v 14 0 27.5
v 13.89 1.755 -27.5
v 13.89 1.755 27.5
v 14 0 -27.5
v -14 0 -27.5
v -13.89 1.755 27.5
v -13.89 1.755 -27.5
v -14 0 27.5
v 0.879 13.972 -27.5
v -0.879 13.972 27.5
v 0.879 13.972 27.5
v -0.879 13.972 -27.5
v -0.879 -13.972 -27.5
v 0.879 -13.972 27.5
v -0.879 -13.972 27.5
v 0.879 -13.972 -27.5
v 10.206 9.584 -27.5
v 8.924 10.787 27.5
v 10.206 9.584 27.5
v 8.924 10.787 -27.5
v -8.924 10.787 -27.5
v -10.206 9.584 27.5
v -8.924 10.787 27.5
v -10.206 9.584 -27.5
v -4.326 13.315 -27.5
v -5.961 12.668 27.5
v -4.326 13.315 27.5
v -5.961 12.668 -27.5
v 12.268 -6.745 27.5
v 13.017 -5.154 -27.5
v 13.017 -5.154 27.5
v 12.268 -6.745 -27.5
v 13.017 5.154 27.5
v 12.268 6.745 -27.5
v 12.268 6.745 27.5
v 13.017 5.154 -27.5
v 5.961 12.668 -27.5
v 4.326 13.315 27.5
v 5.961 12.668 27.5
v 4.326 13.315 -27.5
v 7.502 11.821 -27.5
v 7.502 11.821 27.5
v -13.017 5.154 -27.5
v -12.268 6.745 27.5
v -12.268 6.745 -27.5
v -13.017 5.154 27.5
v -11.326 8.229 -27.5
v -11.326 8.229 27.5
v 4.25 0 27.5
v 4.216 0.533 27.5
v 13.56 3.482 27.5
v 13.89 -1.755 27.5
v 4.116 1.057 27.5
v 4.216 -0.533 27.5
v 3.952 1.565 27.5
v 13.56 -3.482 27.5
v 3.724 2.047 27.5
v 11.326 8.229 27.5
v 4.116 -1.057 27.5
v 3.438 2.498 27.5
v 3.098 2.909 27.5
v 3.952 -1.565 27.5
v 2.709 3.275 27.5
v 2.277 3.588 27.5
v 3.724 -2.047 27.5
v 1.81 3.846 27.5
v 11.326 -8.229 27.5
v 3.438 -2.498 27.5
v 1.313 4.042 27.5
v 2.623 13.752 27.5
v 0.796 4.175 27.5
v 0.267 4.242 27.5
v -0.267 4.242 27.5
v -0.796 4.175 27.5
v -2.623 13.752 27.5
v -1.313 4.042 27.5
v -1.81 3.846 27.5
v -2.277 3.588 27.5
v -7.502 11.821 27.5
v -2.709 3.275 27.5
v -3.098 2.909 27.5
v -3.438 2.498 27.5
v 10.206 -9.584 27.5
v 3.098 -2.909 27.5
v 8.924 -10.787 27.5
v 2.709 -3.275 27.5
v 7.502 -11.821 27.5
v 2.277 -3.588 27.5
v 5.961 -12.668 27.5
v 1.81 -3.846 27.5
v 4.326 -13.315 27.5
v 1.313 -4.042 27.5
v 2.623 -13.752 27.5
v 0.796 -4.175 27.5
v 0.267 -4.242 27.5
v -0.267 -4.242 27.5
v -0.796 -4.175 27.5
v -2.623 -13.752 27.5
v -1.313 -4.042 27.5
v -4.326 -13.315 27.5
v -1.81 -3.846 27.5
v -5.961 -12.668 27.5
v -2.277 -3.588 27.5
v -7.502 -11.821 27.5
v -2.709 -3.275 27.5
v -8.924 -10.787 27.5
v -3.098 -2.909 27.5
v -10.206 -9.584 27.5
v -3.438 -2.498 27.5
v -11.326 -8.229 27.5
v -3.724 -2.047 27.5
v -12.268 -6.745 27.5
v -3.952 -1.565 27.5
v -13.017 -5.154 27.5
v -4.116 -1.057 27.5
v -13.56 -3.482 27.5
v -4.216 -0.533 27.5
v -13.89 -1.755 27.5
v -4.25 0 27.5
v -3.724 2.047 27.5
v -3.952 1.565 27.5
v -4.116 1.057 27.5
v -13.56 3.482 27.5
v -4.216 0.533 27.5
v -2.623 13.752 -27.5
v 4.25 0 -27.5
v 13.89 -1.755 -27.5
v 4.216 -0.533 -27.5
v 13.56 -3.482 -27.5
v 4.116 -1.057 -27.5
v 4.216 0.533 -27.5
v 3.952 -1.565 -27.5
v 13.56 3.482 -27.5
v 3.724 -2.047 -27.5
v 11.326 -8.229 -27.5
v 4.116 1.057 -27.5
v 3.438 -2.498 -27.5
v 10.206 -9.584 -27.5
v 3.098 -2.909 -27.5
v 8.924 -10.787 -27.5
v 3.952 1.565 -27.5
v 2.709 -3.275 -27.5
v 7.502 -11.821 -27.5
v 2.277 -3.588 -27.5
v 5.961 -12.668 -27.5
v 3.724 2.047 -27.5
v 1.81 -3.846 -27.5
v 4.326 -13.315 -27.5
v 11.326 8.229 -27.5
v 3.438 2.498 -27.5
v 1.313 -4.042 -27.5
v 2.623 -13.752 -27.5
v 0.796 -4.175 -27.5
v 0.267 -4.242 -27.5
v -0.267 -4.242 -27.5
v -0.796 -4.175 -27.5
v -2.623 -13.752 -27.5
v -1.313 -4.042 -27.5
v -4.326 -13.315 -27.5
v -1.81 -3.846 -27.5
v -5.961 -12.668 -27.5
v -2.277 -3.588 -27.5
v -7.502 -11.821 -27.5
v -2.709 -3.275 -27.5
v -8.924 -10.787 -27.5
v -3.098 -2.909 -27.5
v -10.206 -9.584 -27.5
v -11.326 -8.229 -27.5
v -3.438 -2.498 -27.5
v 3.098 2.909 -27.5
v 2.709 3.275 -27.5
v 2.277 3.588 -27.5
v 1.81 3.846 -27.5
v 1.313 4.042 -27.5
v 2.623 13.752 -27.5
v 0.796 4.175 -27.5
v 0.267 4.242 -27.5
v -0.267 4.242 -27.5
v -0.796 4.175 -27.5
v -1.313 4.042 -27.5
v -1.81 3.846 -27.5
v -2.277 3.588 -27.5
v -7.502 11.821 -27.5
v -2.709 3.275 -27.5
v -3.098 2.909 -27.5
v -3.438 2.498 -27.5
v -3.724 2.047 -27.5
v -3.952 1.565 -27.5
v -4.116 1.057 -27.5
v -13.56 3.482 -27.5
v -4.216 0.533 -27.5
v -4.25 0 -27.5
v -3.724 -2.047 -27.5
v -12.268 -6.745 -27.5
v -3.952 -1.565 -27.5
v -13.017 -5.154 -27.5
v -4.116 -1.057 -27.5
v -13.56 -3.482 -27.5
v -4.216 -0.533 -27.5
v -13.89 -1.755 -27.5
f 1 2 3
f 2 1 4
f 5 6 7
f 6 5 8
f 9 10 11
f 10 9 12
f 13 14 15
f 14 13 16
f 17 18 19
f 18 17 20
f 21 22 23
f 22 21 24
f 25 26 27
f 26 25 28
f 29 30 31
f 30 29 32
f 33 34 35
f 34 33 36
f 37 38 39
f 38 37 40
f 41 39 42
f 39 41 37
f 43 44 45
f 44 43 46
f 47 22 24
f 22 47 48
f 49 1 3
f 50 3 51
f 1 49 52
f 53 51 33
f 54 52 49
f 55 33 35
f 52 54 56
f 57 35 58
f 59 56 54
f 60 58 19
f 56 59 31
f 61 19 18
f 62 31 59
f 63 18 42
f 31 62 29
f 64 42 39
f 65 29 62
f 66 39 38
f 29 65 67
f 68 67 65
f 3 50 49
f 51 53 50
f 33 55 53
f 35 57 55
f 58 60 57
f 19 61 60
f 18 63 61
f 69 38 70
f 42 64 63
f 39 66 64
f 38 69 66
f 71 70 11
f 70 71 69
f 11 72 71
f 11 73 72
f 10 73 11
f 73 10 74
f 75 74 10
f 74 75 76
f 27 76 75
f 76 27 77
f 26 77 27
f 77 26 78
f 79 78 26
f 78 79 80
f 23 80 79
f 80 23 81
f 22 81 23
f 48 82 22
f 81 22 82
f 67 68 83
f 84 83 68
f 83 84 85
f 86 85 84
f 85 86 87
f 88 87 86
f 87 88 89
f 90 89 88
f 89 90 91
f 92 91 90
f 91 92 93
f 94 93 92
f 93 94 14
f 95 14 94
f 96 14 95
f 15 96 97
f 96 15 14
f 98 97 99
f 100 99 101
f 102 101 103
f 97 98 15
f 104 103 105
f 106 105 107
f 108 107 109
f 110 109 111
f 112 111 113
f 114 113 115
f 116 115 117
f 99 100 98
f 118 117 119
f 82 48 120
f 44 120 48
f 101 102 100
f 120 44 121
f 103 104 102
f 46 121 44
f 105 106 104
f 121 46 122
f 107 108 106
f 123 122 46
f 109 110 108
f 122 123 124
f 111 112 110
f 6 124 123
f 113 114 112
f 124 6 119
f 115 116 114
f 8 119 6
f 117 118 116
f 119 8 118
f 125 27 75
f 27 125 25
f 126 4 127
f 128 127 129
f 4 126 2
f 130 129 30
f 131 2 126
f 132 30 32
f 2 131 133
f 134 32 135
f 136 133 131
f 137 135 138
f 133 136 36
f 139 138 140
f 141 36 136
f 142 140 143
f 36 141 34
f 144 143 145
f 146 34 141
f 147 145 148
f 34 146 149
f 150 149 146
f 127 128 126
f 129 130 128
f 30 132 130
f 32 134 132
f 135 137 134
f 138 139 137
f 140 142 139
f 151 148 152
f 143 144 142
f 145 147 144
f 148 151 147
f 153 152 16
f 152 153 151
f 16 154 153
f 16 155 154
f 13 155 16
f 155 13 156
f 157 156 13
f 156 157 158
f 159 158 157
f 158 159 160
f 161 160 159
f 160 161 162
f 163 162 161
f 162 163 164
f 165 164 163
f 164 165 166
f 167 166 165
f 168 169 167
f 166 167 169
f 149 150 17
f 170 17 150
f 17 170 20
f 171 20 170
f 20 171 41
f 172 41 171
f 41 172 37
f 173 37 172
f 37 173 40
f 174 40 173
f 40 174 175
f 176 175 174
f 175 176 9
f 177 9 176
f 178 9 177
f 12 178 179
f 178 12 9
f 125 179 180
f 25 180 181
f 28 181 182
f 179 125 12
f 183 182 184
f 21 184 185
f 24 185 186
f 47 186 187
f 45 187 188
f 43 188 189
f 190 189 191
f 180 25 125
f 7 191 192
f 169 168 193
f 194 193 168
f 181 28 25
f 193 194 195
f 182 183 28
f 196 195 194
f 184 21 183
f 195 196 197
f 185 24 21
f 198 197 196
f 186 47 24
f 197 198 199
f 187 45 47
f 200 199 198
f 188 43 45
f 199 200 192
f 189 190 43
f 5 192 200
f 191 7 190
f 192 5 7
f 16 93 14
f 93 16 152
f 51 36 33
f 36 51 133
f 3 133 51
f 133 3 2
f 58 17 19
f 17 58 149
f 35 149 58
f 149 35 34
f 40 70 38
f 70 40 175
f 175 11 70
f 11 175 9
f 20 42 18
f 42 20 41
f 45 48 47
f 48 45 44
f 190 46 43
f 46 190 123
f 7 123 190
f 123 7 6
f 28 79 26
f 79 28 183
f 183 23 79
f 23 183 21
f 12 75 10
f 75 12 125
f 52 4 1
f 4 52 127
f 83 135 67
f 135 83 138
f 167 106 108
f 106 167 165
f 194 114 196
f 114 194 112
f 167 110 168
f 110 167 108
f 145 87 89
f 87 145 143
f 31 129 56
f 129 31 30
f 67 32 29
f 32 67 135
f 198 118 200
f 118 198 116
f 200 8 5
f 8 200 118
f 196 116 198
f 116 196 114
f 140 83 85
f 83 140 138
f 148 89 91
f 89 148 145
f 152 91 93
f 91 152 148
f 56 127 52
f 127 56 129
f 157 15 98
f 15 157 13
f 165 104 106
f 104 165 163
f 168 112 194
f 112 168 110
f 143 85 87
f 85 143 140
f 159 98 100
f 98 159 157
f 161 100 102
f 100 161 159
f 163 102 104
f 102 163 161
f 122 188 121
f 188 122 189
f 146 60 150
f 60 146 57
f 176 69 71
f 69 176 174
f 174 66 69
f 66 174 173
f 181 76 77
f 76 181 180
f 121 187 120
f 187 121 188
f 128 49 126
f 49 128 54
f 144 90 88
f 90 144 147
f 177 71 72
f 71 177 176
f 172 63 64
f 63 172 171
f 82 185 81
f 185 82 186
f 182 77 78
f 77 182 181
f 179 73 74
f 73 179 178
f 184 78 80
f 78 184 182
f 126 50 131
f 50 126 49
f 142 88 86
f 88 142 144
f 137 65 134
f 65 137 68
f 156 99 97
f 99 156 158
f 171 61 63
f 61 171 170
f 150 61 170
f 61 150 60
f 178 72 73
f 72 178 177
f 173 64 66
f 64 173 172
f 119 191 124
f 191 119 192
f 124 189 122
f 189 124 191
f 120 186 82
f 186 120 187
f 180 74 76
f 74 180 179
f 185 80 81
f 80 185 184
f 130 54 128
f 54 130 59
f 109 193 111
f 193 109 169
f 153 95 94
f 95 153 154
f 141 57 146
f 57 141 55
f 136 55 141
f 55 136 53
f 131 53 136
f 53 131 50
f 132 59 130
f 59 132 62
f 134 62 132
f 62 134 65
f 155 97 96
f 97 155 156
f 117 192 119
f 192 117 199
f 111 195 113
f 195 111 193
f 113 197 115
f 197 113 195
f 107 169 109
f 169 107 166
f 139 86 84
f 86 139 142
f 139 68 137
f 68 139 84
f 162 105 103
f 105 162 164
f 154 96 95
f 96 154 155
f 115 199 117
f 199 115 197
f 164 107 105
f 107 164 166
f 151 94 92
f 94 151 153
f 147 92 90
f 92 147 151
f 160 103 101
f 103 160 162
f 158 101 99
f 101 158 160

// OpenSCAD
$fn = 50;


difference() {
	union() {
		translate(v = [0, 0, -27.5000000000]) {
			cylinder(h = 55, r = 14.0000000000);
		}
	}
	union() {
		translate(v = [0, 0, -100.0000000000]) {
			cylinder(h = 200, r = 4.2500000000);
		}
	}
}
